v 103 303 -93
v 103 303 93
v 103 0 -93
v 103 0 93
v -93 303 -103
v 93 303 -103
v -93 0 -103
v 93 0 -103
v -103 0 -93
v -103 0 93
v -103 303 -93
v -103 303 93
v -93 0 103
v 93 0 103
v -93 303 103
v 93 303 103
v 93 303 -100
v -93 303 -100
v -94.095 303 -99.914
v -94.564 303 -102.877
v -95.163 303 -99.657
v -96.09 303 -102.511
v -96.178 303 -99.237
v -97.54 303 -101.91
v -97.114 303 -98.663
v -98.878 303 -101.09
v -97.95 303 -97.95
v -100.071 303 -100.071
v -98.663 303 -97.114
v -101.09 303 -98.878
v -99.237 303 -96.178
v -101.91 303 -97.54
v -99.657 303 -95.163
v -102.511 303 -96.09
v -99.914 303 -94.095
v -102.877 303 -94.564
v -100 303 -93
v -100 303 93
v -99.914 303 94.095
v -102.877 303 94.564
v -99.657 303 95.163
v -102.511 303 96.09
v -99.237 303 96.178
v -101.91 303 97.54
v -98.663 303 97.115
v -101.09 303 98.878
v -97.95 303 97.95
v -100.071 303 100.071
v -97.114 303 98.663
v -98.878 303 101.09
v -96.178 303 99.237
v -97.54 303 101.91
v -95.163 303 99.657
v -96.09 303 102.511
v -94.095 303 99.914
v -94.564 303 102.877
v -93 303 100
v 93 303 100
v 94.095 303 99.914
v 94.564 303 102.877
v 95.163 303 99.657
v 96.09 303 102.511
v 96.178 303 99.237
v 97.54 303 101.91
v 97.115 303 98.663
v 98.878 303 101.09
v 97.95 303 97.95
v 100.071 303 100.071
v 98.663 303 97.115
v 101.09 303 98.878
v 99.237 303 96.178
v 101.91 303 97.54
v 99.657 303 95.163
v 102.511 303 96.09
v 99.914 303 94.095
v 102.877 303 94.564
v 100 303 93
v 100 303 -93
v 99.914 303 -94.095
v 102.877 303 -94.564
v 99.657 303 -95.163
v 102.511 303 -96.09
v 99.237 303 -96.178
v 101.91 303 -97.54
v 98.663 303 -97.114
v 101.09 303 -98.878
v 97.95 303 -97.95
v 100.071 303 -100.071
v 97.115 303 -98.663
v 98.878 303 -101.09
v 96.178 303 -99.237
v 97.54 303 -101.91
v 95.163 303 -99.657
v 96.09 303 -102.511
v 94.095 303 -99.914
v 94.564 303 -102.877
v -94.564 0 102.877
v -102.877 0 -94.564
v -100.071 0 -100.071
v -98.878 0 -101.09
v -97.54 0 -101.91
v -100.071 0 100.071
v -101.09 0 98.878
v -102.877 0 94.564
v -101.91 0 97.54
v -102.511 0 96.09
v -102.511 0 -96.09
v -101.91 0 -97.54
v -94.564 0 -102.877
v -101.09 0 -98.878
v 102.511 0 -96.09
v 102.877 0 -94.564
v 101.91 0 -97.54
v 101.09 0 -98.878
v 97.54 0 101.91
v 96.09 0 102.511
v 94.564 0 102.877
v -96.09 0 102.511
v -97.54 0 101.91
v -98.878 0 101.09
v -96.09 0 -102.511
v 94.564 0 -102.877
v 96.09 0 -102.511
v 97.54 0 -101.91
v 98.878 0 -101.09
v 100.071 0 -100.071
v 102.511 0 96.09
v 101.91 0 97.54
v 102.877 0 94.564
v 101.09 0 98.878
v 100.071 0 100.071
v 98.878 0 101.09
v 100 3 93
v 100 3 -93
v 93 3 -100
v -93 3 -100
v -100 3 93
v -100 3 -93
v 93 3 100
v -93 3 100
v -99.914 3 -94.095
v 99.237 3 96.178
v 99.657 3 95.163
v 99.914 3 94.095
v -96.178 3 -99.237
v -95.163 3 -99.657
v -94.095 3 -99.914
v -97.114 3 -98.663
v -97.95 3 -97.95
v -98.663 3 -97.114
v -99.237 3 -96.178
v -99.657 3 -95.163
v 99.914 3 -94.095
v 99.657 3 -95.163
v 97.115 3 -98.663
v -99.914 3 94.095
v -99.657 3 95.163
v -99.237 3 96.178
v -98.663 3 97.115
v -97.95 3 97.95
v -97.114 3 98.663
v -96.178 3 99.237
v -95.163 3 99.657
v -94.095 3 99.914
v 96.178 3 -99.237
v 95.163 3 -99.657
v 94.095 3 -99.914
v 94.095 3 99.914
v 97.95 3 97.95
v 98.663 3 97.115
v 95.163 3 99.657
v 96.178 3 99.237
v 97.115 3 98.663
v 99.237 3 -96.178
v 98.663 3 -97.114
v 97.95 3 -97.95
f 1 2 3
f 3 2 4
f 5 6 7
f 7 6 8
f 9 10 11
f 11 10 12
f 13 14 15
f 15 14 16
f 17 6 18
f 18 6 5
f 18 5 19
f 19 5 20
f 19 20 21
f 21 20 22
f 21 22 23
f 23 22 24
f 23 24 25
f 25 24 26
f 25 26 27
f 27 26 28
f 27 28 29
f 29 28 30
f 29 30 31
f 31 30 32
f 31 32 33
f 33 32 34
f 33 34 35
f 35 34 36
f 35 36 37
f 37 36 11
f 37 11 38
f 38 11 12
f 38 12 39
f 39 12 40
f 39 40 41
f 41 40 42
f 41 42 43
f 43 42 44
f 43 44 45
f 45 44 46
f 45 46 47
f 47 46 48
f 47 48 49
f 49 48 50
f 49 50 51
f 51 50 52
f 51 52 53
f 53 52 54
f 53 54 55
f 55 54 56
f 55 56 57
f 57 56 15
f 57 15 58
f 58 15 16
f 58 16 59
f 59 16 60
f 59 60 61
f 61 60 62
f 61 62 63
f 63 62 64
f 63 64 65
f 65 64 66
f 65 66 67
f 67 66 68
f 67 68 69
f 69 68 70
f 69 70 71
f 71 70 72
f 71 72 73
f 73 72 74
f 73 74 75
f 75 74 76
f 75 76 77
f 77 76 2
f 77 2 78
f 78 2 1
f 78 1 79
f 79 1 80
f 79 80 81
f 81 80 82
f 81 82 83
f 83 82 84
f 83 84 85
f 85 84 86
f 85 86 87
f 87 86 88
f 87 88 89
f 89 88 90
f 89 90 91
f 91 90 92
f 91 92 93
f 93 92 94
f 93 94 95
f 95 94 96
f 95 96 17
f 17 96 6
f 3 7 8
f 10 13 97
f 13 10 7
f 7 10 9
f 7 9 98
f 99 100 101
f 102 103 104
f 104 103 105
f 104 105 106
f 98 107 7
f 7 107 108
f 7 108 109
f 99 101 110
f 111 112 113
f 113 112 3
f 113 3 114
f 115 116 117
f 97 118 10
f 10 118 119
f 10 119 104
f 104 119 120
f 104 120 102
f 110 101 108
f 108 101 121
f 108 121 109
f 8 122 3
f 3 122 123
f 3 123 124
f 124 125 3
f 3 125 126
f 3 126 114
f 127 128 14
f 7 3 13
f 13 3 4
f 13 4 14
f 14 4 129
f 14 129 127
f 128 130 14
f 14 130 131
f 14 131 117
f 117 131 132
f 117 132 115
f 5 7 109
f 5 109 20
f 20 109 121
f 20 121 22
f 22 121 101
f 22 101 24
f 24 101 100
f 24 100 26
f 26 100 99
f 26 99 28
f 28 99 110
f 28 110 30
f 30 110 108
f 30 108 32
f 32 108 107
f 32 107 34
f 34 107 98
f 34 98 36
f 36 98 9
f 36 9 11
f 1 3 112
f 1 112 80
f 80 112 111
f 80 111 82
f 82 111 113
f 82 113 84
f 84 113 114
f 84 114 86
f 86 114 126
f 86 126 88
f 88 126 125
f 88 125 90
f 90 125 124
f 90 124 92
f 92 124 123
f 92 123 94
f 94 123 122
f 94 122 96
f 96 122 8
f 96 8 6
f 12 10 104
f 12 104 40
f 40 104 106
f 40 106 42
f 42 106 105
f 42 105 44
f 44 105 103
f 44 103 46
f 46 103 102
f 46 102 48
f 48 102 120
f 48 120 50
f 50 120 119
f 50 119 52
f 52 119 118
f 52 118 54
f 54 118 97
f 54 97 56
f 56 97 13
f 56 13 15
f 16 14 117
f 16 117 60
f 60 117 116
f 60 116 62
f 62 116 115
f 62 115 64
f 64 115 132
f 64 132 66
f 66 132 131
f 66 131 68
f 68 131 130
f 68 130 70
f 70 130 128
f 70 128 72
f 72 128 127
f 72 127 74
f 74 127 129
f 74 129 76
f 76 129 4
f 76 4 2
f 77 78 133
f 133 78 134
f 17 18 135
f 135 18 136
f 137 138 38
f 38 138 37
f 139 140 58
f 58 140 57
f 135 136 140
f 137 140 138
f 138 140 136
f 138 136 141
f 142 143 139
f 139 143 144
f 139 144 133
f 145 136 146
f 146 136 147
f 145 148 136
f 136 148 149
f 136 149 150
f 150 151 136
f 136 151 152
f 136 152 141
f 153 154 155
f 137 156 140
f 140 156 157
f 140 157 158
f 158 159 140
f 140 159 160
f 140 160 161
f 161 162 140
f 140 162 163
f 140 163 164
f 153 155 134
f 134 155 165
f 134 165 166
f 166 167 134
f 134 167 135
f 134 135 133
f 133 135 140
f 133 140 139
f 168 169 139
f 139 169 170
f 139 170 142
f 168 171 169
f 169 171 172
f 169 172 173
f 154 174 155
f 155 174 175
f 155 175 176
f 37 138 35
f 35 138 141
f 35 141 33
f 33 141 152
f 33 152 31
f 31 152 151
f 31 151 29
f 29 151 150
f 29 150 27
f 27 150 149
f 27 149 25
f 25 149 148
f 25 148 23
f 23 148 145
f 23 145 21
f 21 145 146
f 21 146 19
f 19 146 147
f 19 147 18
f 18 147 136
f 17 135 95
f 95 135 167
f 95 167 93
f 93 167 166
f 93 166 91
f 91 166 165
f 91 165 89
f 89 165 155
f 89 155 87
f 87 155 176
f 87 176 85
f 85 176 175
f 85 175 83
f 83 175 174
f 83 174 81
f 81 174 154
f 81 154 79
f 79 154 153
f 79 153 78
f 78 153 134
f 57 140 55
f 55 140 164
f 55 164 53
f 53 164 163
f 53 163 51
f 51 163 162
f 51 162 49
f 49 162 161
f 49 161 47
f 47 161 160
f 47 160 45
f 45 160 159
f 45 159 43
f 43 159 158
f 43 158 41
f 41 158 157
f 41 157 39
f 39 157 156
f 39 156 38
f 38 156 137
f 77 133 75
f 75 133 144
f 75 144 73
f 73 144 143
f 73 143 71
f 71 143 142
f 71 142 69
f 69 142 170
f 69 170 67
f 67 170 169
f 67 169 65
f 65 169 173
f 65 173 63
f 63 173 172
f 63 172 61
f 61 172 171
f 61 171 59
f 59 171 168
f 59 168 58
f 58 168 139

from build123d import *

# Parameters (mm, degrees)
SKETCH1_W           = 206
SKETCH1_H           = 206
BOSS_EXTRUDE1_DEPTH = 303
FILLET1_R           = 10
SHELL1_T            = -3


with BuildPart() as part:
    # Sketch1 → Boss-Extrude1 (new body)
    with BuildSketch(Plane(origin=(0, 0, 0), x_dir=(1, 0, 0), z_dir=(0, 1, 0))):
        Rectangle(SKETCH1_W, SKETCH1_H)
    extrude(amount=BOSS_EXTRUDE1_DEPTH)

    # Fillet1
    fillet1_edges = [part.edges().sort_by_distance(p)[0] for p in [
        (103, 151.5, 103),
        (-103, 151.5, 103),
        (-103, 151.5, -103),
        (103, 151.5, -103),
    ]]
    fillet(fillet1_edges, radius=FILLET1_R)

    # Shell1
    shell1_openings = [part.faces().sort_by_distance(p)[0] for p in [
        (0, 303, 0),
    ]]
    offset(amount=SHELL1_T, openings=shell1_openings, kind=Kind.INTERSECTION)


solid = part.part
